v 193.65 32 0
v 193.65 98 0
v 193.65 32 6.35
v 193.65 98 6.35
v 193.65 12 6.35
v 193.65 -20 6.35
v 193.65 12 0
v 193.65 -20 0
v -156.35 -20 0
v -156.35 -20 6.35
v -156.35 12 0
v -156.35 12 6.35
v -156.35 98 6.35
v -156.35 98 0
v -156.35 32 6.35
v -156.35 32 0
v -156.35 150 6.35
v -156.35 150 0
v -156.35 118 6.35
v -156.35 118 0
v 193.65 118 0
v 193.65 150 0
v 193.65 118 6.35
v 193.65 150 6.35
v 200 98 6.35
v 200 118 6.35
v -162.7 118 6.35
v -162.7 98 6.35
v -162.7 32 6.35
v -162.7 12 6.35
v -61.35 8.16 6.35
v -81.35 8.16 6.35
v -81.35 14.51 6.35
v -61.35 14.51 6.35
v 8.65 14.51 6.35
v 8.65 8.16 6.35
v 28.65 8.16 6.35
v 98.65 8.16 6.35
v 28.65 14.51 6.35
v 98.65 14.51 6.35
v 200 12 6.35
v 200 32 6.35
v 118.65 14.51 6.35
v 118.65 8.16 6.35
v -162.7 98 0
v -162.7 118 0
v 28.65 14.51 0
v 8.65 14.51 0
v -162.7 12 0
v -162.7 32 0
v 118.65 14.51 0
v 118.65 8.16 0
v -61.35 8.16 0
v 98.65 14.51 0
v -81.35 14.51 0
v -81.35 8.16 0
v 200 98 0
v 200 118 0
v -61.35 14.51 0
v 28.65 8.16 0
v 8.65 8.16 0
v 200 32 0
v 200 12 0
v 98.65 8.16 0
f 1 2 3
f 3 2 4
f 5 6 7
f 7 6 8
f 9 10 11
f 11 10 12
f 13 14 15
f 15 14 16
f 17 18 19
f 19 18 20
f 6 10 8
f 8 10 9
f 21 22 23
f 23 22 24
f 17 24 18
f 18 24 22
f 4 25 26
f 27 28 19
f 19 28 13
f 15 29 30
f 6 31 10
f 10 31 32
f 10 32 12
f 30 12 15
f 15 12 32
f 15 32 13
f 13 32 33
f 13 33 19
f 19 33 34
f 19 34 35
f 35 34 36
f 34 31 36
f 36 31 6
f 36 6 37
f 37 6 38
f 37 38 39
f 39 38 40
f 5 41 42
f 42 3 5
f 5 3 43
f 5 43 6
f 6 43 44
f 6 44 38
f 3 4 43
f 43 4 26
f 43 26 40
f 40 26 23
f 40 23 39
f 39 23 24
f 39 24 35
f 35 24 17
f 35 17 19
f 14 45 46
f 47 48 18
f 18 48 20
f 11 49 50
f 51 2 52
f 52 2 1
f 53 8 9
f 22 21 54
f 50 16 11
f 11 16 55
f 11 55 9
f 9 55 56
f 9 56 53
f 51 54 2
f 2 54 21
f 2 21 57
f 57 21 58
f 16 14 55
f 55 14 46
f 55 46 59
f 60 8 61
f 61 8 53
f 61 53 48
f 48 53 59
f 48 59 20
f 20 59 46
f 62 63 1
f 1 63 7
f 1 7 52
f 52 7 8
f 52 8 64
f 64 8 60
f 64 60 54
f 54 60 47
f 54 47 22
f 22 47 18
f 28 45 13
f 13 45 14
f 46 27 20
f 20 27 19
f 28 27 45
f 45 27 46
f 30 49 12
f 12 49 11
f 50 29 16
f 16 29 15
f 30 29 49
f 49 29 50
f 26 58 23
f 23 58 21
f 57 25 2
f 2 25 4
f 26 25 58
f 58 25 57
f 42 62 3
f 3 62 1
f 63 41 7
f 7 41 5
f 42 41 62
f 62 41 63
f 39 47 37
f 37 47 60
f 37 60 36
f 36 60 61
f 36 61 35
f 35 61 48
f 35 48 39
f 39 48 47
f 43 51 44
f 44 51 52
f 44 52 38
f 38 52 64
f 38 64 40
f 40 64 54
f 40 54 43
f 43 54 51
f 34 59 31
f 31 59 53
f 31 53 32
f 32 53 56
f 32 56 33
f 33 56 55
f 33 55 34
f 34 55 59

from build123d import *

# Parameters (mm, degrees)
CROQUIS1_W              = 350
CROQUIS1_H              = 170
SALIENTE_EXTRUIR1_DEPTH = 6.35
CROQUIS2_W              = 6.35
CROQUIS2_H              = 20
SALIENTE_EXTRUIR2_DEPTH = 6.35
CROQUIS4_W              = 20
CROQUIS4_H              = 6.35
CORTAR_EXTRUIR1_DEPTH   = 10


with BuildPart() as part:
    # Croquis1 → Saliente-Extruir1 (new body)
    with BuildSketch(Plane.XY):
        with Locations((18.650000026, 65)):
            Rectangle(CROQUIS1_W, CROQUIS1_H)
    extrude(amount=SALIENTE_EXTRUIR1_DEPTH)

    # Croquis2 → Saliente-Extruir2 (add)
    with BuildSketch(Plane.ZY.offset(156.349999974)):
        with Locations((3.175, 108)):
            Rectangle(CROQUIS2_W, CROQUIS2_H)
        with Locations((3.175, 22)):
            Rectangle(CROQUIS2_W, CROQUIS2_H)
    saliente_extruir2 = extrude(amount=SALIENTE_EXTRUIR2_DEPTH)

    # Simetría1: Saliente-Extruir2 across plane
    add(saliente_extruir2.mirror(Plane(origin=(18.650000026, 0, 0), x_dir=(0, 0, 1), z_dir=(1, 0, 0))))

    # Croquis4 → Cortar-Extruir1 (cut)
    with BuildSketch(Plane.XY.offset(6.35)):
        with Locations((18.650000026, 11.335)):
            Rectangle(CROQUIS4_W, CROQUIS4_H)
        with Locations((108.650000026, 11.335)):
            Rectangle(CROQUIS4_W, CROQUIS4_H)
        with Locations((-71.349999974, 11.335)):
            Rectangle(CROQUIS4_W, CROQUIS4_H)
    extrude(amount=-CORTAR_EXTRUIR1_DEPTH, mode=Mode.SUBTRACT)


solid = part.part
